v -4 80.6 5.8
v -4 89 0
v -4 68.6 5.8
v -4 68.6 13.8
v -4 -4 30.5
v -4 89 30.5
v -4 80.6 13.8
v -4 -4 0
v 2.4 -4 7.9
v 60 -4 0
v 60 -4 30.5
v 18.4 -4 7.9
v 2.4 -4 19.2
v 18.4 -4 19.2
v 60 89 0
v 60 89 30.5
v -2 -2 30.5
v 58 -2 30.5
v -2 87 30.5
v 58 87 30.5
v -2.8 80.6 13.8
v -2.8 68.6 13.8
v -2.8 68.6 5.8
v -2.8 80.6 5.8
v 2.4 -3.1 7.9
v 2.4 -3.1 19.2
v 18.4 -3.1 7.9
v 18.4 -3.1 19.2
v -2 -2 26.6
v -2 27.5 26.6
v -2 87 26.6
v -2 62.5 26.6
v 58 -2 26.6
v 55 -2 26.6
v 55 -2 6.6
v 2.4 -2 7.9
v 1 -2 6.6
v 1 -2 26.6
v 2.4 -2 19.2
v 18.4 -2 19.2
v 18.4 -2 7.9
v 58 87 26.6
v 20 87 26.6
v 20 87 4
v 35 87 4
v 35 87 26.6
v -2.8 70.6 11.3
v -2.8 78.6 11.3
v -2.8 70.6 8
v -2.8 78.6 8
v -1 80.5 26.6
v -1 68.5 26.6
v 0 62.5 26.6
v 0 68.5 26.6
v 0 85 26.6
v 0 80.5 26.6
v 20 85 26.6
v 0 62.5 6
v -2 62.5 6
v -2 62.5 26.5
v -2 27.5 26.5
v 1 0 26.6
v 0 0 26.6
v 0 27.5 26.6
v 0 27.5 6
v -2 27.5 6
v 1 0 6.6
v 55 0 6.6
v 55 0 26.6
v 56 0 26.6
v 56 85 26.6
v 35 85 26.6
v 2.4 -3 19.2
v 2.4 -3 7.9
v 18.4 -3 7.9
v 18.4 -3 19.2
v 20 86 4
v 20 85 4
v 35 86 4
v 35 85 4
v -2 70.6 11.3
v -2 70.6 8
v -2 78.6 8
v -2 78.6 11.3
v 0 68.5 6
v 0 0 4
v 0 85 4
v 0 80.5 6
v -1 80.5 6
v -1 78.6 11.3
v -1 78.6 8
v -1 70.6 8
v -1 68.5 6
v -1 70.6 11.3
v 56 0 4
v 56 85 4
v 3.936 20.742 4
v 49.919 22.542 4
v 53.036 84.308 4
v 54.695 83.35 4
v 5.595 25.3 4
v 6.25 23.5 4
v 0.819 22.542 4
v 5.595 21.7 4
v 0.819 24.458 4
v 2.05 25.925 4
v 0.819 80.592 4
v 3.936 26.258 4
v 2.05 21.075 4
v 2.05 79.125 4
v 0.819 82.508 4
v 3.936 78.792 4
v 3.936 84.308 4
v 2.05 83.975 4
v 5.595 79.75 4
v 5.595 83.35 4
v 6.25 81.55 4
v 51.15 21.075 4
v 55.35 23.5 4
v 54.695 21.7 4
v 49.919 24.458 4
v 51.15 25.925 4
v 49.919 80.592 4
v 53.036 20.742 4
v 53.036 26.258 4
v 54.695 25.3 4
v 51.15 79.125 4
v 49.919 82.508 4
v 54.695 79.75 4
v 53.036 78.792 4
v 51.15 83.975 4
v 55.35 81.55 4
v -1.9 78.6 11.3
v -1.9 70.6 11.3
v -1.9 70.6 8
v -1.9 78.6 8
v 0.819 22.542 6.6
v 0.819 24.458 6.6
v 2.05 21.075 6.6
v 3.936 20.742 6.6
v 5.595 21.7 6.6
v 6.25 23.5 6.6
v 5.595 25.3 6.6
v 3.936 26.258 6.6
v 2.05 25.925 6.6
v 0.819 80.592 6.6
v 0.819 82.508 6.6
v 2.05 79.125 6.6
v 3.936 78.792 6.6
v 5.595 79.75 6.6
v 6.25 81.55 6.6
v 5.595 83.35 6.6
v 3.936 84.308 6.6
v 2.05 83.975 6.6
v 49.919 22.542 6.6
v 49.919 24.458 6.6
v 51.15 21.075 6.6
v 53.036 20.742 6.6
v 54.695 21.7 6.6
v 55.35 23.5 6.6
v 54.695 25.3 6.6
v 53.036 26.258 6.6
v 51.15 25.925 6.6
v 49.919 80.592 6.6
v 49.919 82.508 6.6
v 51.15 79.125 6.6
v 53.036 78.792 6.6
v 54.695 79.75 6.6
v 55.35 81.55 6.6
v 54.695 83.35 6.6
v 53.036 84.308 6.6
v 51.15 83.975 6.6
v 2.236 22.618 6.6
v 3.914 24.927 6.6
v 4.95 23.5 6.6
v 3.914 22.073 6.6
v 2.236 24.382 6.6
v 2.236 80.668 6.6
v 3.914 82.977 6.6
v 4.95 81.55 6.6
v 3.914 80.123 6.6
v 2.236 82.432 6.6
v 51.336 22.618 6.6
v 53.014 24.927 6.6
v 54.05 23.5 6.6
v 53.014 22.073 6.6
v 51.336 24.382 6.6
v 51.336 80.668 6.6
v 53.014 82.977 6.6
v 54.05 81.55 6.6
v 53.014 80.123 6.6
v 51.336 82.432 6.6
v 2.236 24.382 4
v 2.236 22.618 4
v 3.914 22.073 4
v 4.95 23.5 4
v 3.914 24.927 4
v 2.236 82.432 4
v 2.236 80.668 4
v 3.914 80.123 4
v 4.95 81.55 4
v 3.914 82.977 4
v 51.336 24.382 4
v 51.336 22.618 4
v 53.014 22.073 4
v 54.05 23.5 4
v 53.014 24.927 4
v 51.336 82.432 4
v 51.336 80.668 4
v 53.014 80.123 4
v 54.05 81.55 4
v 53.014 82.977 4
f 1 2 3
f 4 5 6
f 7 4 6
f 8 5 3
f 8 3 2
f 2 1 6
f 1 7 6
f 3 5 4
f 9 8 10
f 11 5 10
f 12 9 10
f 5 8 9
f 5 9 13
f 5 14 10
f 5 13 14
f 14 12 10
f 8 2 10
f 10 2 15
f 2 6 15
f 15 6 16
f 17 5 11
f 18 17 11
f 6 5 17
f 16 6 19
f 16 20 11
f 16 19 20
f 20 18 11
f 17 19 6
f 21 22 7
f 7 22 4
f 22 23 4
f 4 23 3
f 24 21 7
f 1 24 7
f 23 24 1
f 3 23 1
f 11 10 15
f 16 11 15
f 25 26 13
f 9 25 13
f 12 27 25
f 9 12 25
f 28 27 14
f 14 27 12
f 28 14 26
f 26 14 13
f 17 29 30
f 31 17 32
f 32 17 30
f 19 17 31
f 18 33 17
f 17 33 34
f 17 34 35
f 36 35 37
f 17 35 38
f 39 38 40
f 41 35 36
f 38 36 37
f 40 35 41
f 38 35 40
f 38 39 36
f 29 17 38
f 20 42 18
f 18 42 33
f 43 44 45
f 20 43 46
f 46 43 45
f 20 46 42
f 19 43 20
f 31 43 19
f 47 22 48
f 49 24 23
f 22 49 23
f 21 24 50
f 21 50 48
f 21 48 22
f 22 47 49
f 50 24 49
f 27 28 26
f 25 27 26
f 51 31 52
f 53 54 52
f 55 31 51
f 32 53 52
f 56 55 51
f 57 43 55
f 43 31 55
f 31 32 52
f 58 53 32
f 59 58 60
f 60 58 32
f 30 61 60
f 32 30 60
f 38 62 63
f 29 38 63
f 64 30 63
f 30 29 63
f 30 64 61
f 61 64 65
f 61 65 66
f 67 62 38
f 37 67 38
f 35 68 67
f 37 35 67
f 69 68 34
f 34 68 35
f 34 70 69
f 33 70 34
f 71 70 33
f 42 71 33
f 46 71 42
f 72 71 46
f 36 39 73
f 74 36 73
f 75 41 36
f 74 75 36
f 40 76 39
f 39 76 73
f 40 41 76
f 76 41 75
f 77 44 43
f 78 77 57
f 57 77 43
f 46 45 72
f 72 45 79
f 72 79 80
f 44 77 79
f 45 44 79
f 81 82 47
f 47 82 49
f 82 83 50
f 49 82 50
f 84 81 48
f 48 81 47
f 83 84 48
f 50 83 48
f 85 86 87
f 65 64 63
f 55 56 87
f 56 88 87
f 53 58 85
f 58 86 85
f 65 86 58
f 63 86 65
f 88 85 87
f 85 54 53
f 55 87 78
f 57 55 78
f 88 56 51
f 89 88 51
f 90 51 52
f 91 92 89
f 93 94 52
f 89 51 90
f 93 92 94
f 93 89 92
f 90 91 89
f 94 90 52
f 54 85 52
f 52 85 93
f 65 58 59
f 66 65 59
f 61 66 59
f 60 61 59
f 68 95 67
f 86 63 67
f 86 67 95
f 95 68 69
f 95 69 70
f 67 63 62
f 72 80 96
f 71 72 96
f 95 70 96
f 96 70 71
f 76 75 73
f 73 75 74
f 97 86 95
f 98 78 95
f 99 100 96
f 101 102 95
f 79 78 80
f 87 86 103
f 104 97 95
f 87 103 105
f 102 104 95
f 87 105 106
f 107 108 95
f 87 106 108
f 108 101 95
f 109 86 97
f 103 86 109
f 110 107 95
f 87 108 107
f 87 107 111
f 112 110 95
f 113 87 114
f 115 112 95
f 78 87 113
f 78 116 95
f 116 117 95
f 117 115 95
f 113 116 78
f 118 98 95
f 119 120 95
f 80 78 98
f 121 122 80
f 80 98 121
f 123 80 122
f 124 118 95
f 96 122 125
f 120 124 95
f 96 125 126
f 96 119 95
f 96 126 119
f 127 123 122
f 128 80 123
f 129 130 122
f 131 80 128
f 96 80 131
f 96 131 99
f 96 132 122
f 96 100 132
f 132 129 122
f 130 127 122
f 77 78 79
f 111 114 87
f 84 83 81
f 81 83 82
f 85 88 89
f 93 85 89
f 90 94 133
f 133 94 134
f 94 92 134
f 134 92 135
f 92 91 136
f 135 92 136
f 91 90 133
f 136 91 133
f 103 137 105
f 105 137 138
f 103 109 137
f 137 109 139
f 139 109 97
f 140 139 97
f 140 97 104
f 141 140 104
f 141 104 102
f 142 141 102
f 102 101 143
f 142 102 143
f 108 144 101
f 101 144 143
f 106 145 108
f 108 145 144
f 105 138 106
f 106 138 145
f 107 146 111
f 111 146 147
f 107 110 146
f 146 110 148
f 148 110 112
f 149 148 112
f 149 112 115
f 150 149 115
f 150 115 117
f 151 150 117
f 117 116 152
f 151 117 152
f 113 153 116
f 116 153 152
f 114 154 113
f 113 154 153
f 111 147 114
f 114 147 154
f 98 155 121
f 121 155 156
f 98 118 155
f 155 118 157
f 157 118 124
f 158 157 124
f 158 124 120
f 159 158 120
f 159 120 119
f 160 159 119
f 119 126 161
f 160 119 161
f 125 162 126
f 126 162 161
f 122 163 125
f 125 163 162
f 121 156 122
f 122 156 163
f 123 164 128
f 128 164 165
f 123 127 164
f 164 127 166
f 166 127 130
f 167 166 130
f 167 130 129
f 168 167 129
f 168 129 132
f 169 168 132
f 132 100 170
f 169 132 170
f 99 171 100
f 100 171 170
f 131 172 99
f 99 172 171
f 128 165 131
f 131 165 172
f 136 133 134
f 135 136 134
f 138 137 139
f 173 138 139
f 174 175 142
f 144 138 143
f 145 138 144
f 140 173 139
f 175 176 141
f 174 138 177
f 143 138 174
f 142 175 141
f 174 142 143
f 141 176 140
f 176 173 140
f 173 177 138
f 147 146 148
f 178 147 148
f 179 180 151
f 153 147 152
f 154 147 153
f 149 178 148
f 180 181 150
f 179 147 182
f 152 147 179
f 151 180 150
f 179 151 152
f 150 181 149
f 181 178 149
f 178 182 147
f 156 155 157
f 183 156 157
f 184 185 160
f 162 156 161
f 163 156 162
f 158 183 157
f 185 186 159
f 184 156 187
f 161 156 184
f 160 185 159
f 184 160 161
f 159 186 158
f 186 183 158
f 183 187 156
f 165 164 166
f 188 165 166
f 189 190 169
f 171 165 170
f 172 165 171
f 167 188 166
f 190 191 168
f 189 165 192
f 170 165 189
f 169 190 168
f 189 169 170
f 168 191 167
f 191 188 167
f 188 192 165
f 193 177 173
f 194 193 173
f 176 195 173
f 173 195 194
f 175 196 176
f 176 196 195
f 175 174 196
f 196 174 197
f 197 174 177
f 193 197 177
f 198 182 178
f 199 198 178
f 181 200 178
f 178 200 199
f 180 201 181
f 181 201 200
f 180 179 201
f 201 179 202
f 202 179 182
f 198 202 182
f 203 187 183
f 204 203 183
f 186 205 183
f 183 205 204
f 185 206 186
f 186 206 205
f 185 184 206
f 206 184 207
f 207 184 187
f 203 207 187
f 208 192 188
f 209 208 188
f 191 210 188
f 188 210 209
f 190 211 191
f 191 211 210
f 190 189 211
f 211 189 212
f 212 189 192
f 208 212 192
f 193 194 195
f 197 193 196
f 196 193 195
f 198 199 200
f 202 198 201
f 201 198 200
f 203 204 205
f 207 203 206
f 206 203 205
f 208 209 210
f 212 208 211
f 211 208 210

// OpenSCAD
pared = 4;
pared2 = 2*pared;
medPared = pared/2;

raspX = 56;//58
raspY = 85;//85
raspZ = 15.5;//15.5
raspD1 = 3.45;
raspDP = 22.5;
raspD2 = raspDP+pared2;//Altura lados
raspAlza = 2.6;





difference()
{
bigCaja();

translate([-medPared,-medPared, raspD2-pared+0.1])
cube([raspX+pared,raspY+pared,pared]);

translate([2.4,-medPared-(medPared/2),pared+raspAlza+1.3])
cube([16,medPared,11.3]);

translate([2.4,-pared-(medPared/2)-0.1,pared+raspAlza+1.3])
cube([16,medPared,11.3]);

}



module bigCaja()
{
crearRaspCard();
ladoConnector();
ladoUSB();
ladoMiniSD();
ladoPines();
}


module ladoPines()
{
translate([raspX,-pared,0])
cube([pared,raspY+pared2,raspD2]);
}


module ladoMiniSD()
{
difference()
{
translate([-pared,raspY,0])
cube([raspX+pared+1,pared,raspD2]);

translate([(raspX/2)-8,raspY-1,pared])
cube([15,medPared+1,50]);
}

}

module ladoUSB()
{

difference()
{

translate([-pared,-pared,0])
cube([raspX+pared+1,pared,raspD2]);

translate([1,-medPared,pared+raspAlza])
cube([54,medPared+0.1,22]);

}

}





module ladoConnector()
{


translate([-pared,-1,raspD2-pared])
cube([medPared,raspY+2,pared]);

difference()
{
translate([-pared,-1,0])
cube([pared,raspY+2,raspD2]);

translate([-pared-1,raspY-16.4,5.8])
cube([2.2,12,8]);

translate([-2,27.5,pared+2])
cube([3.1,35,25]);

translate([-1,68.5,pared+2])
cube([2,12,25]);

translate([-pared+1,raspY-14.4,pared+raspAlza+1.4])
{
	cube([1,8,3.3]);
	translate([1.1,0,0])
	cube([1,8,3.3]);
}

}

}







module crearRaspCard()
{
	cube([raspX,raspY,pared]);
	cuatroTorn(2.8);

	translate([-1,-1,0])
	cube([raspX+2,raspY+2,pared]);

}



module cuatroTorn(radio)
{
	translate([raspD1,raspY-raspD1,0])
	cylHue(pared+raspAlza,radio);

	translate([raspX-raspD1,raspY-raspD1,0])
	cylHue(pared+raspAlza,radio);

	translate([raspD1,23.5,0])
	cylHue(pared+raspAlza,radio);

	translate([raspX-raspD1,23.5,0])
	cylHue(pared+raspAlza,radio);

}

module cylHue(h,radio){
	difference()
	{
		cylinder(r=radio,h);
		translate([0,0,pared-1])
		cylinder(r=1.5,h);
	}
}
